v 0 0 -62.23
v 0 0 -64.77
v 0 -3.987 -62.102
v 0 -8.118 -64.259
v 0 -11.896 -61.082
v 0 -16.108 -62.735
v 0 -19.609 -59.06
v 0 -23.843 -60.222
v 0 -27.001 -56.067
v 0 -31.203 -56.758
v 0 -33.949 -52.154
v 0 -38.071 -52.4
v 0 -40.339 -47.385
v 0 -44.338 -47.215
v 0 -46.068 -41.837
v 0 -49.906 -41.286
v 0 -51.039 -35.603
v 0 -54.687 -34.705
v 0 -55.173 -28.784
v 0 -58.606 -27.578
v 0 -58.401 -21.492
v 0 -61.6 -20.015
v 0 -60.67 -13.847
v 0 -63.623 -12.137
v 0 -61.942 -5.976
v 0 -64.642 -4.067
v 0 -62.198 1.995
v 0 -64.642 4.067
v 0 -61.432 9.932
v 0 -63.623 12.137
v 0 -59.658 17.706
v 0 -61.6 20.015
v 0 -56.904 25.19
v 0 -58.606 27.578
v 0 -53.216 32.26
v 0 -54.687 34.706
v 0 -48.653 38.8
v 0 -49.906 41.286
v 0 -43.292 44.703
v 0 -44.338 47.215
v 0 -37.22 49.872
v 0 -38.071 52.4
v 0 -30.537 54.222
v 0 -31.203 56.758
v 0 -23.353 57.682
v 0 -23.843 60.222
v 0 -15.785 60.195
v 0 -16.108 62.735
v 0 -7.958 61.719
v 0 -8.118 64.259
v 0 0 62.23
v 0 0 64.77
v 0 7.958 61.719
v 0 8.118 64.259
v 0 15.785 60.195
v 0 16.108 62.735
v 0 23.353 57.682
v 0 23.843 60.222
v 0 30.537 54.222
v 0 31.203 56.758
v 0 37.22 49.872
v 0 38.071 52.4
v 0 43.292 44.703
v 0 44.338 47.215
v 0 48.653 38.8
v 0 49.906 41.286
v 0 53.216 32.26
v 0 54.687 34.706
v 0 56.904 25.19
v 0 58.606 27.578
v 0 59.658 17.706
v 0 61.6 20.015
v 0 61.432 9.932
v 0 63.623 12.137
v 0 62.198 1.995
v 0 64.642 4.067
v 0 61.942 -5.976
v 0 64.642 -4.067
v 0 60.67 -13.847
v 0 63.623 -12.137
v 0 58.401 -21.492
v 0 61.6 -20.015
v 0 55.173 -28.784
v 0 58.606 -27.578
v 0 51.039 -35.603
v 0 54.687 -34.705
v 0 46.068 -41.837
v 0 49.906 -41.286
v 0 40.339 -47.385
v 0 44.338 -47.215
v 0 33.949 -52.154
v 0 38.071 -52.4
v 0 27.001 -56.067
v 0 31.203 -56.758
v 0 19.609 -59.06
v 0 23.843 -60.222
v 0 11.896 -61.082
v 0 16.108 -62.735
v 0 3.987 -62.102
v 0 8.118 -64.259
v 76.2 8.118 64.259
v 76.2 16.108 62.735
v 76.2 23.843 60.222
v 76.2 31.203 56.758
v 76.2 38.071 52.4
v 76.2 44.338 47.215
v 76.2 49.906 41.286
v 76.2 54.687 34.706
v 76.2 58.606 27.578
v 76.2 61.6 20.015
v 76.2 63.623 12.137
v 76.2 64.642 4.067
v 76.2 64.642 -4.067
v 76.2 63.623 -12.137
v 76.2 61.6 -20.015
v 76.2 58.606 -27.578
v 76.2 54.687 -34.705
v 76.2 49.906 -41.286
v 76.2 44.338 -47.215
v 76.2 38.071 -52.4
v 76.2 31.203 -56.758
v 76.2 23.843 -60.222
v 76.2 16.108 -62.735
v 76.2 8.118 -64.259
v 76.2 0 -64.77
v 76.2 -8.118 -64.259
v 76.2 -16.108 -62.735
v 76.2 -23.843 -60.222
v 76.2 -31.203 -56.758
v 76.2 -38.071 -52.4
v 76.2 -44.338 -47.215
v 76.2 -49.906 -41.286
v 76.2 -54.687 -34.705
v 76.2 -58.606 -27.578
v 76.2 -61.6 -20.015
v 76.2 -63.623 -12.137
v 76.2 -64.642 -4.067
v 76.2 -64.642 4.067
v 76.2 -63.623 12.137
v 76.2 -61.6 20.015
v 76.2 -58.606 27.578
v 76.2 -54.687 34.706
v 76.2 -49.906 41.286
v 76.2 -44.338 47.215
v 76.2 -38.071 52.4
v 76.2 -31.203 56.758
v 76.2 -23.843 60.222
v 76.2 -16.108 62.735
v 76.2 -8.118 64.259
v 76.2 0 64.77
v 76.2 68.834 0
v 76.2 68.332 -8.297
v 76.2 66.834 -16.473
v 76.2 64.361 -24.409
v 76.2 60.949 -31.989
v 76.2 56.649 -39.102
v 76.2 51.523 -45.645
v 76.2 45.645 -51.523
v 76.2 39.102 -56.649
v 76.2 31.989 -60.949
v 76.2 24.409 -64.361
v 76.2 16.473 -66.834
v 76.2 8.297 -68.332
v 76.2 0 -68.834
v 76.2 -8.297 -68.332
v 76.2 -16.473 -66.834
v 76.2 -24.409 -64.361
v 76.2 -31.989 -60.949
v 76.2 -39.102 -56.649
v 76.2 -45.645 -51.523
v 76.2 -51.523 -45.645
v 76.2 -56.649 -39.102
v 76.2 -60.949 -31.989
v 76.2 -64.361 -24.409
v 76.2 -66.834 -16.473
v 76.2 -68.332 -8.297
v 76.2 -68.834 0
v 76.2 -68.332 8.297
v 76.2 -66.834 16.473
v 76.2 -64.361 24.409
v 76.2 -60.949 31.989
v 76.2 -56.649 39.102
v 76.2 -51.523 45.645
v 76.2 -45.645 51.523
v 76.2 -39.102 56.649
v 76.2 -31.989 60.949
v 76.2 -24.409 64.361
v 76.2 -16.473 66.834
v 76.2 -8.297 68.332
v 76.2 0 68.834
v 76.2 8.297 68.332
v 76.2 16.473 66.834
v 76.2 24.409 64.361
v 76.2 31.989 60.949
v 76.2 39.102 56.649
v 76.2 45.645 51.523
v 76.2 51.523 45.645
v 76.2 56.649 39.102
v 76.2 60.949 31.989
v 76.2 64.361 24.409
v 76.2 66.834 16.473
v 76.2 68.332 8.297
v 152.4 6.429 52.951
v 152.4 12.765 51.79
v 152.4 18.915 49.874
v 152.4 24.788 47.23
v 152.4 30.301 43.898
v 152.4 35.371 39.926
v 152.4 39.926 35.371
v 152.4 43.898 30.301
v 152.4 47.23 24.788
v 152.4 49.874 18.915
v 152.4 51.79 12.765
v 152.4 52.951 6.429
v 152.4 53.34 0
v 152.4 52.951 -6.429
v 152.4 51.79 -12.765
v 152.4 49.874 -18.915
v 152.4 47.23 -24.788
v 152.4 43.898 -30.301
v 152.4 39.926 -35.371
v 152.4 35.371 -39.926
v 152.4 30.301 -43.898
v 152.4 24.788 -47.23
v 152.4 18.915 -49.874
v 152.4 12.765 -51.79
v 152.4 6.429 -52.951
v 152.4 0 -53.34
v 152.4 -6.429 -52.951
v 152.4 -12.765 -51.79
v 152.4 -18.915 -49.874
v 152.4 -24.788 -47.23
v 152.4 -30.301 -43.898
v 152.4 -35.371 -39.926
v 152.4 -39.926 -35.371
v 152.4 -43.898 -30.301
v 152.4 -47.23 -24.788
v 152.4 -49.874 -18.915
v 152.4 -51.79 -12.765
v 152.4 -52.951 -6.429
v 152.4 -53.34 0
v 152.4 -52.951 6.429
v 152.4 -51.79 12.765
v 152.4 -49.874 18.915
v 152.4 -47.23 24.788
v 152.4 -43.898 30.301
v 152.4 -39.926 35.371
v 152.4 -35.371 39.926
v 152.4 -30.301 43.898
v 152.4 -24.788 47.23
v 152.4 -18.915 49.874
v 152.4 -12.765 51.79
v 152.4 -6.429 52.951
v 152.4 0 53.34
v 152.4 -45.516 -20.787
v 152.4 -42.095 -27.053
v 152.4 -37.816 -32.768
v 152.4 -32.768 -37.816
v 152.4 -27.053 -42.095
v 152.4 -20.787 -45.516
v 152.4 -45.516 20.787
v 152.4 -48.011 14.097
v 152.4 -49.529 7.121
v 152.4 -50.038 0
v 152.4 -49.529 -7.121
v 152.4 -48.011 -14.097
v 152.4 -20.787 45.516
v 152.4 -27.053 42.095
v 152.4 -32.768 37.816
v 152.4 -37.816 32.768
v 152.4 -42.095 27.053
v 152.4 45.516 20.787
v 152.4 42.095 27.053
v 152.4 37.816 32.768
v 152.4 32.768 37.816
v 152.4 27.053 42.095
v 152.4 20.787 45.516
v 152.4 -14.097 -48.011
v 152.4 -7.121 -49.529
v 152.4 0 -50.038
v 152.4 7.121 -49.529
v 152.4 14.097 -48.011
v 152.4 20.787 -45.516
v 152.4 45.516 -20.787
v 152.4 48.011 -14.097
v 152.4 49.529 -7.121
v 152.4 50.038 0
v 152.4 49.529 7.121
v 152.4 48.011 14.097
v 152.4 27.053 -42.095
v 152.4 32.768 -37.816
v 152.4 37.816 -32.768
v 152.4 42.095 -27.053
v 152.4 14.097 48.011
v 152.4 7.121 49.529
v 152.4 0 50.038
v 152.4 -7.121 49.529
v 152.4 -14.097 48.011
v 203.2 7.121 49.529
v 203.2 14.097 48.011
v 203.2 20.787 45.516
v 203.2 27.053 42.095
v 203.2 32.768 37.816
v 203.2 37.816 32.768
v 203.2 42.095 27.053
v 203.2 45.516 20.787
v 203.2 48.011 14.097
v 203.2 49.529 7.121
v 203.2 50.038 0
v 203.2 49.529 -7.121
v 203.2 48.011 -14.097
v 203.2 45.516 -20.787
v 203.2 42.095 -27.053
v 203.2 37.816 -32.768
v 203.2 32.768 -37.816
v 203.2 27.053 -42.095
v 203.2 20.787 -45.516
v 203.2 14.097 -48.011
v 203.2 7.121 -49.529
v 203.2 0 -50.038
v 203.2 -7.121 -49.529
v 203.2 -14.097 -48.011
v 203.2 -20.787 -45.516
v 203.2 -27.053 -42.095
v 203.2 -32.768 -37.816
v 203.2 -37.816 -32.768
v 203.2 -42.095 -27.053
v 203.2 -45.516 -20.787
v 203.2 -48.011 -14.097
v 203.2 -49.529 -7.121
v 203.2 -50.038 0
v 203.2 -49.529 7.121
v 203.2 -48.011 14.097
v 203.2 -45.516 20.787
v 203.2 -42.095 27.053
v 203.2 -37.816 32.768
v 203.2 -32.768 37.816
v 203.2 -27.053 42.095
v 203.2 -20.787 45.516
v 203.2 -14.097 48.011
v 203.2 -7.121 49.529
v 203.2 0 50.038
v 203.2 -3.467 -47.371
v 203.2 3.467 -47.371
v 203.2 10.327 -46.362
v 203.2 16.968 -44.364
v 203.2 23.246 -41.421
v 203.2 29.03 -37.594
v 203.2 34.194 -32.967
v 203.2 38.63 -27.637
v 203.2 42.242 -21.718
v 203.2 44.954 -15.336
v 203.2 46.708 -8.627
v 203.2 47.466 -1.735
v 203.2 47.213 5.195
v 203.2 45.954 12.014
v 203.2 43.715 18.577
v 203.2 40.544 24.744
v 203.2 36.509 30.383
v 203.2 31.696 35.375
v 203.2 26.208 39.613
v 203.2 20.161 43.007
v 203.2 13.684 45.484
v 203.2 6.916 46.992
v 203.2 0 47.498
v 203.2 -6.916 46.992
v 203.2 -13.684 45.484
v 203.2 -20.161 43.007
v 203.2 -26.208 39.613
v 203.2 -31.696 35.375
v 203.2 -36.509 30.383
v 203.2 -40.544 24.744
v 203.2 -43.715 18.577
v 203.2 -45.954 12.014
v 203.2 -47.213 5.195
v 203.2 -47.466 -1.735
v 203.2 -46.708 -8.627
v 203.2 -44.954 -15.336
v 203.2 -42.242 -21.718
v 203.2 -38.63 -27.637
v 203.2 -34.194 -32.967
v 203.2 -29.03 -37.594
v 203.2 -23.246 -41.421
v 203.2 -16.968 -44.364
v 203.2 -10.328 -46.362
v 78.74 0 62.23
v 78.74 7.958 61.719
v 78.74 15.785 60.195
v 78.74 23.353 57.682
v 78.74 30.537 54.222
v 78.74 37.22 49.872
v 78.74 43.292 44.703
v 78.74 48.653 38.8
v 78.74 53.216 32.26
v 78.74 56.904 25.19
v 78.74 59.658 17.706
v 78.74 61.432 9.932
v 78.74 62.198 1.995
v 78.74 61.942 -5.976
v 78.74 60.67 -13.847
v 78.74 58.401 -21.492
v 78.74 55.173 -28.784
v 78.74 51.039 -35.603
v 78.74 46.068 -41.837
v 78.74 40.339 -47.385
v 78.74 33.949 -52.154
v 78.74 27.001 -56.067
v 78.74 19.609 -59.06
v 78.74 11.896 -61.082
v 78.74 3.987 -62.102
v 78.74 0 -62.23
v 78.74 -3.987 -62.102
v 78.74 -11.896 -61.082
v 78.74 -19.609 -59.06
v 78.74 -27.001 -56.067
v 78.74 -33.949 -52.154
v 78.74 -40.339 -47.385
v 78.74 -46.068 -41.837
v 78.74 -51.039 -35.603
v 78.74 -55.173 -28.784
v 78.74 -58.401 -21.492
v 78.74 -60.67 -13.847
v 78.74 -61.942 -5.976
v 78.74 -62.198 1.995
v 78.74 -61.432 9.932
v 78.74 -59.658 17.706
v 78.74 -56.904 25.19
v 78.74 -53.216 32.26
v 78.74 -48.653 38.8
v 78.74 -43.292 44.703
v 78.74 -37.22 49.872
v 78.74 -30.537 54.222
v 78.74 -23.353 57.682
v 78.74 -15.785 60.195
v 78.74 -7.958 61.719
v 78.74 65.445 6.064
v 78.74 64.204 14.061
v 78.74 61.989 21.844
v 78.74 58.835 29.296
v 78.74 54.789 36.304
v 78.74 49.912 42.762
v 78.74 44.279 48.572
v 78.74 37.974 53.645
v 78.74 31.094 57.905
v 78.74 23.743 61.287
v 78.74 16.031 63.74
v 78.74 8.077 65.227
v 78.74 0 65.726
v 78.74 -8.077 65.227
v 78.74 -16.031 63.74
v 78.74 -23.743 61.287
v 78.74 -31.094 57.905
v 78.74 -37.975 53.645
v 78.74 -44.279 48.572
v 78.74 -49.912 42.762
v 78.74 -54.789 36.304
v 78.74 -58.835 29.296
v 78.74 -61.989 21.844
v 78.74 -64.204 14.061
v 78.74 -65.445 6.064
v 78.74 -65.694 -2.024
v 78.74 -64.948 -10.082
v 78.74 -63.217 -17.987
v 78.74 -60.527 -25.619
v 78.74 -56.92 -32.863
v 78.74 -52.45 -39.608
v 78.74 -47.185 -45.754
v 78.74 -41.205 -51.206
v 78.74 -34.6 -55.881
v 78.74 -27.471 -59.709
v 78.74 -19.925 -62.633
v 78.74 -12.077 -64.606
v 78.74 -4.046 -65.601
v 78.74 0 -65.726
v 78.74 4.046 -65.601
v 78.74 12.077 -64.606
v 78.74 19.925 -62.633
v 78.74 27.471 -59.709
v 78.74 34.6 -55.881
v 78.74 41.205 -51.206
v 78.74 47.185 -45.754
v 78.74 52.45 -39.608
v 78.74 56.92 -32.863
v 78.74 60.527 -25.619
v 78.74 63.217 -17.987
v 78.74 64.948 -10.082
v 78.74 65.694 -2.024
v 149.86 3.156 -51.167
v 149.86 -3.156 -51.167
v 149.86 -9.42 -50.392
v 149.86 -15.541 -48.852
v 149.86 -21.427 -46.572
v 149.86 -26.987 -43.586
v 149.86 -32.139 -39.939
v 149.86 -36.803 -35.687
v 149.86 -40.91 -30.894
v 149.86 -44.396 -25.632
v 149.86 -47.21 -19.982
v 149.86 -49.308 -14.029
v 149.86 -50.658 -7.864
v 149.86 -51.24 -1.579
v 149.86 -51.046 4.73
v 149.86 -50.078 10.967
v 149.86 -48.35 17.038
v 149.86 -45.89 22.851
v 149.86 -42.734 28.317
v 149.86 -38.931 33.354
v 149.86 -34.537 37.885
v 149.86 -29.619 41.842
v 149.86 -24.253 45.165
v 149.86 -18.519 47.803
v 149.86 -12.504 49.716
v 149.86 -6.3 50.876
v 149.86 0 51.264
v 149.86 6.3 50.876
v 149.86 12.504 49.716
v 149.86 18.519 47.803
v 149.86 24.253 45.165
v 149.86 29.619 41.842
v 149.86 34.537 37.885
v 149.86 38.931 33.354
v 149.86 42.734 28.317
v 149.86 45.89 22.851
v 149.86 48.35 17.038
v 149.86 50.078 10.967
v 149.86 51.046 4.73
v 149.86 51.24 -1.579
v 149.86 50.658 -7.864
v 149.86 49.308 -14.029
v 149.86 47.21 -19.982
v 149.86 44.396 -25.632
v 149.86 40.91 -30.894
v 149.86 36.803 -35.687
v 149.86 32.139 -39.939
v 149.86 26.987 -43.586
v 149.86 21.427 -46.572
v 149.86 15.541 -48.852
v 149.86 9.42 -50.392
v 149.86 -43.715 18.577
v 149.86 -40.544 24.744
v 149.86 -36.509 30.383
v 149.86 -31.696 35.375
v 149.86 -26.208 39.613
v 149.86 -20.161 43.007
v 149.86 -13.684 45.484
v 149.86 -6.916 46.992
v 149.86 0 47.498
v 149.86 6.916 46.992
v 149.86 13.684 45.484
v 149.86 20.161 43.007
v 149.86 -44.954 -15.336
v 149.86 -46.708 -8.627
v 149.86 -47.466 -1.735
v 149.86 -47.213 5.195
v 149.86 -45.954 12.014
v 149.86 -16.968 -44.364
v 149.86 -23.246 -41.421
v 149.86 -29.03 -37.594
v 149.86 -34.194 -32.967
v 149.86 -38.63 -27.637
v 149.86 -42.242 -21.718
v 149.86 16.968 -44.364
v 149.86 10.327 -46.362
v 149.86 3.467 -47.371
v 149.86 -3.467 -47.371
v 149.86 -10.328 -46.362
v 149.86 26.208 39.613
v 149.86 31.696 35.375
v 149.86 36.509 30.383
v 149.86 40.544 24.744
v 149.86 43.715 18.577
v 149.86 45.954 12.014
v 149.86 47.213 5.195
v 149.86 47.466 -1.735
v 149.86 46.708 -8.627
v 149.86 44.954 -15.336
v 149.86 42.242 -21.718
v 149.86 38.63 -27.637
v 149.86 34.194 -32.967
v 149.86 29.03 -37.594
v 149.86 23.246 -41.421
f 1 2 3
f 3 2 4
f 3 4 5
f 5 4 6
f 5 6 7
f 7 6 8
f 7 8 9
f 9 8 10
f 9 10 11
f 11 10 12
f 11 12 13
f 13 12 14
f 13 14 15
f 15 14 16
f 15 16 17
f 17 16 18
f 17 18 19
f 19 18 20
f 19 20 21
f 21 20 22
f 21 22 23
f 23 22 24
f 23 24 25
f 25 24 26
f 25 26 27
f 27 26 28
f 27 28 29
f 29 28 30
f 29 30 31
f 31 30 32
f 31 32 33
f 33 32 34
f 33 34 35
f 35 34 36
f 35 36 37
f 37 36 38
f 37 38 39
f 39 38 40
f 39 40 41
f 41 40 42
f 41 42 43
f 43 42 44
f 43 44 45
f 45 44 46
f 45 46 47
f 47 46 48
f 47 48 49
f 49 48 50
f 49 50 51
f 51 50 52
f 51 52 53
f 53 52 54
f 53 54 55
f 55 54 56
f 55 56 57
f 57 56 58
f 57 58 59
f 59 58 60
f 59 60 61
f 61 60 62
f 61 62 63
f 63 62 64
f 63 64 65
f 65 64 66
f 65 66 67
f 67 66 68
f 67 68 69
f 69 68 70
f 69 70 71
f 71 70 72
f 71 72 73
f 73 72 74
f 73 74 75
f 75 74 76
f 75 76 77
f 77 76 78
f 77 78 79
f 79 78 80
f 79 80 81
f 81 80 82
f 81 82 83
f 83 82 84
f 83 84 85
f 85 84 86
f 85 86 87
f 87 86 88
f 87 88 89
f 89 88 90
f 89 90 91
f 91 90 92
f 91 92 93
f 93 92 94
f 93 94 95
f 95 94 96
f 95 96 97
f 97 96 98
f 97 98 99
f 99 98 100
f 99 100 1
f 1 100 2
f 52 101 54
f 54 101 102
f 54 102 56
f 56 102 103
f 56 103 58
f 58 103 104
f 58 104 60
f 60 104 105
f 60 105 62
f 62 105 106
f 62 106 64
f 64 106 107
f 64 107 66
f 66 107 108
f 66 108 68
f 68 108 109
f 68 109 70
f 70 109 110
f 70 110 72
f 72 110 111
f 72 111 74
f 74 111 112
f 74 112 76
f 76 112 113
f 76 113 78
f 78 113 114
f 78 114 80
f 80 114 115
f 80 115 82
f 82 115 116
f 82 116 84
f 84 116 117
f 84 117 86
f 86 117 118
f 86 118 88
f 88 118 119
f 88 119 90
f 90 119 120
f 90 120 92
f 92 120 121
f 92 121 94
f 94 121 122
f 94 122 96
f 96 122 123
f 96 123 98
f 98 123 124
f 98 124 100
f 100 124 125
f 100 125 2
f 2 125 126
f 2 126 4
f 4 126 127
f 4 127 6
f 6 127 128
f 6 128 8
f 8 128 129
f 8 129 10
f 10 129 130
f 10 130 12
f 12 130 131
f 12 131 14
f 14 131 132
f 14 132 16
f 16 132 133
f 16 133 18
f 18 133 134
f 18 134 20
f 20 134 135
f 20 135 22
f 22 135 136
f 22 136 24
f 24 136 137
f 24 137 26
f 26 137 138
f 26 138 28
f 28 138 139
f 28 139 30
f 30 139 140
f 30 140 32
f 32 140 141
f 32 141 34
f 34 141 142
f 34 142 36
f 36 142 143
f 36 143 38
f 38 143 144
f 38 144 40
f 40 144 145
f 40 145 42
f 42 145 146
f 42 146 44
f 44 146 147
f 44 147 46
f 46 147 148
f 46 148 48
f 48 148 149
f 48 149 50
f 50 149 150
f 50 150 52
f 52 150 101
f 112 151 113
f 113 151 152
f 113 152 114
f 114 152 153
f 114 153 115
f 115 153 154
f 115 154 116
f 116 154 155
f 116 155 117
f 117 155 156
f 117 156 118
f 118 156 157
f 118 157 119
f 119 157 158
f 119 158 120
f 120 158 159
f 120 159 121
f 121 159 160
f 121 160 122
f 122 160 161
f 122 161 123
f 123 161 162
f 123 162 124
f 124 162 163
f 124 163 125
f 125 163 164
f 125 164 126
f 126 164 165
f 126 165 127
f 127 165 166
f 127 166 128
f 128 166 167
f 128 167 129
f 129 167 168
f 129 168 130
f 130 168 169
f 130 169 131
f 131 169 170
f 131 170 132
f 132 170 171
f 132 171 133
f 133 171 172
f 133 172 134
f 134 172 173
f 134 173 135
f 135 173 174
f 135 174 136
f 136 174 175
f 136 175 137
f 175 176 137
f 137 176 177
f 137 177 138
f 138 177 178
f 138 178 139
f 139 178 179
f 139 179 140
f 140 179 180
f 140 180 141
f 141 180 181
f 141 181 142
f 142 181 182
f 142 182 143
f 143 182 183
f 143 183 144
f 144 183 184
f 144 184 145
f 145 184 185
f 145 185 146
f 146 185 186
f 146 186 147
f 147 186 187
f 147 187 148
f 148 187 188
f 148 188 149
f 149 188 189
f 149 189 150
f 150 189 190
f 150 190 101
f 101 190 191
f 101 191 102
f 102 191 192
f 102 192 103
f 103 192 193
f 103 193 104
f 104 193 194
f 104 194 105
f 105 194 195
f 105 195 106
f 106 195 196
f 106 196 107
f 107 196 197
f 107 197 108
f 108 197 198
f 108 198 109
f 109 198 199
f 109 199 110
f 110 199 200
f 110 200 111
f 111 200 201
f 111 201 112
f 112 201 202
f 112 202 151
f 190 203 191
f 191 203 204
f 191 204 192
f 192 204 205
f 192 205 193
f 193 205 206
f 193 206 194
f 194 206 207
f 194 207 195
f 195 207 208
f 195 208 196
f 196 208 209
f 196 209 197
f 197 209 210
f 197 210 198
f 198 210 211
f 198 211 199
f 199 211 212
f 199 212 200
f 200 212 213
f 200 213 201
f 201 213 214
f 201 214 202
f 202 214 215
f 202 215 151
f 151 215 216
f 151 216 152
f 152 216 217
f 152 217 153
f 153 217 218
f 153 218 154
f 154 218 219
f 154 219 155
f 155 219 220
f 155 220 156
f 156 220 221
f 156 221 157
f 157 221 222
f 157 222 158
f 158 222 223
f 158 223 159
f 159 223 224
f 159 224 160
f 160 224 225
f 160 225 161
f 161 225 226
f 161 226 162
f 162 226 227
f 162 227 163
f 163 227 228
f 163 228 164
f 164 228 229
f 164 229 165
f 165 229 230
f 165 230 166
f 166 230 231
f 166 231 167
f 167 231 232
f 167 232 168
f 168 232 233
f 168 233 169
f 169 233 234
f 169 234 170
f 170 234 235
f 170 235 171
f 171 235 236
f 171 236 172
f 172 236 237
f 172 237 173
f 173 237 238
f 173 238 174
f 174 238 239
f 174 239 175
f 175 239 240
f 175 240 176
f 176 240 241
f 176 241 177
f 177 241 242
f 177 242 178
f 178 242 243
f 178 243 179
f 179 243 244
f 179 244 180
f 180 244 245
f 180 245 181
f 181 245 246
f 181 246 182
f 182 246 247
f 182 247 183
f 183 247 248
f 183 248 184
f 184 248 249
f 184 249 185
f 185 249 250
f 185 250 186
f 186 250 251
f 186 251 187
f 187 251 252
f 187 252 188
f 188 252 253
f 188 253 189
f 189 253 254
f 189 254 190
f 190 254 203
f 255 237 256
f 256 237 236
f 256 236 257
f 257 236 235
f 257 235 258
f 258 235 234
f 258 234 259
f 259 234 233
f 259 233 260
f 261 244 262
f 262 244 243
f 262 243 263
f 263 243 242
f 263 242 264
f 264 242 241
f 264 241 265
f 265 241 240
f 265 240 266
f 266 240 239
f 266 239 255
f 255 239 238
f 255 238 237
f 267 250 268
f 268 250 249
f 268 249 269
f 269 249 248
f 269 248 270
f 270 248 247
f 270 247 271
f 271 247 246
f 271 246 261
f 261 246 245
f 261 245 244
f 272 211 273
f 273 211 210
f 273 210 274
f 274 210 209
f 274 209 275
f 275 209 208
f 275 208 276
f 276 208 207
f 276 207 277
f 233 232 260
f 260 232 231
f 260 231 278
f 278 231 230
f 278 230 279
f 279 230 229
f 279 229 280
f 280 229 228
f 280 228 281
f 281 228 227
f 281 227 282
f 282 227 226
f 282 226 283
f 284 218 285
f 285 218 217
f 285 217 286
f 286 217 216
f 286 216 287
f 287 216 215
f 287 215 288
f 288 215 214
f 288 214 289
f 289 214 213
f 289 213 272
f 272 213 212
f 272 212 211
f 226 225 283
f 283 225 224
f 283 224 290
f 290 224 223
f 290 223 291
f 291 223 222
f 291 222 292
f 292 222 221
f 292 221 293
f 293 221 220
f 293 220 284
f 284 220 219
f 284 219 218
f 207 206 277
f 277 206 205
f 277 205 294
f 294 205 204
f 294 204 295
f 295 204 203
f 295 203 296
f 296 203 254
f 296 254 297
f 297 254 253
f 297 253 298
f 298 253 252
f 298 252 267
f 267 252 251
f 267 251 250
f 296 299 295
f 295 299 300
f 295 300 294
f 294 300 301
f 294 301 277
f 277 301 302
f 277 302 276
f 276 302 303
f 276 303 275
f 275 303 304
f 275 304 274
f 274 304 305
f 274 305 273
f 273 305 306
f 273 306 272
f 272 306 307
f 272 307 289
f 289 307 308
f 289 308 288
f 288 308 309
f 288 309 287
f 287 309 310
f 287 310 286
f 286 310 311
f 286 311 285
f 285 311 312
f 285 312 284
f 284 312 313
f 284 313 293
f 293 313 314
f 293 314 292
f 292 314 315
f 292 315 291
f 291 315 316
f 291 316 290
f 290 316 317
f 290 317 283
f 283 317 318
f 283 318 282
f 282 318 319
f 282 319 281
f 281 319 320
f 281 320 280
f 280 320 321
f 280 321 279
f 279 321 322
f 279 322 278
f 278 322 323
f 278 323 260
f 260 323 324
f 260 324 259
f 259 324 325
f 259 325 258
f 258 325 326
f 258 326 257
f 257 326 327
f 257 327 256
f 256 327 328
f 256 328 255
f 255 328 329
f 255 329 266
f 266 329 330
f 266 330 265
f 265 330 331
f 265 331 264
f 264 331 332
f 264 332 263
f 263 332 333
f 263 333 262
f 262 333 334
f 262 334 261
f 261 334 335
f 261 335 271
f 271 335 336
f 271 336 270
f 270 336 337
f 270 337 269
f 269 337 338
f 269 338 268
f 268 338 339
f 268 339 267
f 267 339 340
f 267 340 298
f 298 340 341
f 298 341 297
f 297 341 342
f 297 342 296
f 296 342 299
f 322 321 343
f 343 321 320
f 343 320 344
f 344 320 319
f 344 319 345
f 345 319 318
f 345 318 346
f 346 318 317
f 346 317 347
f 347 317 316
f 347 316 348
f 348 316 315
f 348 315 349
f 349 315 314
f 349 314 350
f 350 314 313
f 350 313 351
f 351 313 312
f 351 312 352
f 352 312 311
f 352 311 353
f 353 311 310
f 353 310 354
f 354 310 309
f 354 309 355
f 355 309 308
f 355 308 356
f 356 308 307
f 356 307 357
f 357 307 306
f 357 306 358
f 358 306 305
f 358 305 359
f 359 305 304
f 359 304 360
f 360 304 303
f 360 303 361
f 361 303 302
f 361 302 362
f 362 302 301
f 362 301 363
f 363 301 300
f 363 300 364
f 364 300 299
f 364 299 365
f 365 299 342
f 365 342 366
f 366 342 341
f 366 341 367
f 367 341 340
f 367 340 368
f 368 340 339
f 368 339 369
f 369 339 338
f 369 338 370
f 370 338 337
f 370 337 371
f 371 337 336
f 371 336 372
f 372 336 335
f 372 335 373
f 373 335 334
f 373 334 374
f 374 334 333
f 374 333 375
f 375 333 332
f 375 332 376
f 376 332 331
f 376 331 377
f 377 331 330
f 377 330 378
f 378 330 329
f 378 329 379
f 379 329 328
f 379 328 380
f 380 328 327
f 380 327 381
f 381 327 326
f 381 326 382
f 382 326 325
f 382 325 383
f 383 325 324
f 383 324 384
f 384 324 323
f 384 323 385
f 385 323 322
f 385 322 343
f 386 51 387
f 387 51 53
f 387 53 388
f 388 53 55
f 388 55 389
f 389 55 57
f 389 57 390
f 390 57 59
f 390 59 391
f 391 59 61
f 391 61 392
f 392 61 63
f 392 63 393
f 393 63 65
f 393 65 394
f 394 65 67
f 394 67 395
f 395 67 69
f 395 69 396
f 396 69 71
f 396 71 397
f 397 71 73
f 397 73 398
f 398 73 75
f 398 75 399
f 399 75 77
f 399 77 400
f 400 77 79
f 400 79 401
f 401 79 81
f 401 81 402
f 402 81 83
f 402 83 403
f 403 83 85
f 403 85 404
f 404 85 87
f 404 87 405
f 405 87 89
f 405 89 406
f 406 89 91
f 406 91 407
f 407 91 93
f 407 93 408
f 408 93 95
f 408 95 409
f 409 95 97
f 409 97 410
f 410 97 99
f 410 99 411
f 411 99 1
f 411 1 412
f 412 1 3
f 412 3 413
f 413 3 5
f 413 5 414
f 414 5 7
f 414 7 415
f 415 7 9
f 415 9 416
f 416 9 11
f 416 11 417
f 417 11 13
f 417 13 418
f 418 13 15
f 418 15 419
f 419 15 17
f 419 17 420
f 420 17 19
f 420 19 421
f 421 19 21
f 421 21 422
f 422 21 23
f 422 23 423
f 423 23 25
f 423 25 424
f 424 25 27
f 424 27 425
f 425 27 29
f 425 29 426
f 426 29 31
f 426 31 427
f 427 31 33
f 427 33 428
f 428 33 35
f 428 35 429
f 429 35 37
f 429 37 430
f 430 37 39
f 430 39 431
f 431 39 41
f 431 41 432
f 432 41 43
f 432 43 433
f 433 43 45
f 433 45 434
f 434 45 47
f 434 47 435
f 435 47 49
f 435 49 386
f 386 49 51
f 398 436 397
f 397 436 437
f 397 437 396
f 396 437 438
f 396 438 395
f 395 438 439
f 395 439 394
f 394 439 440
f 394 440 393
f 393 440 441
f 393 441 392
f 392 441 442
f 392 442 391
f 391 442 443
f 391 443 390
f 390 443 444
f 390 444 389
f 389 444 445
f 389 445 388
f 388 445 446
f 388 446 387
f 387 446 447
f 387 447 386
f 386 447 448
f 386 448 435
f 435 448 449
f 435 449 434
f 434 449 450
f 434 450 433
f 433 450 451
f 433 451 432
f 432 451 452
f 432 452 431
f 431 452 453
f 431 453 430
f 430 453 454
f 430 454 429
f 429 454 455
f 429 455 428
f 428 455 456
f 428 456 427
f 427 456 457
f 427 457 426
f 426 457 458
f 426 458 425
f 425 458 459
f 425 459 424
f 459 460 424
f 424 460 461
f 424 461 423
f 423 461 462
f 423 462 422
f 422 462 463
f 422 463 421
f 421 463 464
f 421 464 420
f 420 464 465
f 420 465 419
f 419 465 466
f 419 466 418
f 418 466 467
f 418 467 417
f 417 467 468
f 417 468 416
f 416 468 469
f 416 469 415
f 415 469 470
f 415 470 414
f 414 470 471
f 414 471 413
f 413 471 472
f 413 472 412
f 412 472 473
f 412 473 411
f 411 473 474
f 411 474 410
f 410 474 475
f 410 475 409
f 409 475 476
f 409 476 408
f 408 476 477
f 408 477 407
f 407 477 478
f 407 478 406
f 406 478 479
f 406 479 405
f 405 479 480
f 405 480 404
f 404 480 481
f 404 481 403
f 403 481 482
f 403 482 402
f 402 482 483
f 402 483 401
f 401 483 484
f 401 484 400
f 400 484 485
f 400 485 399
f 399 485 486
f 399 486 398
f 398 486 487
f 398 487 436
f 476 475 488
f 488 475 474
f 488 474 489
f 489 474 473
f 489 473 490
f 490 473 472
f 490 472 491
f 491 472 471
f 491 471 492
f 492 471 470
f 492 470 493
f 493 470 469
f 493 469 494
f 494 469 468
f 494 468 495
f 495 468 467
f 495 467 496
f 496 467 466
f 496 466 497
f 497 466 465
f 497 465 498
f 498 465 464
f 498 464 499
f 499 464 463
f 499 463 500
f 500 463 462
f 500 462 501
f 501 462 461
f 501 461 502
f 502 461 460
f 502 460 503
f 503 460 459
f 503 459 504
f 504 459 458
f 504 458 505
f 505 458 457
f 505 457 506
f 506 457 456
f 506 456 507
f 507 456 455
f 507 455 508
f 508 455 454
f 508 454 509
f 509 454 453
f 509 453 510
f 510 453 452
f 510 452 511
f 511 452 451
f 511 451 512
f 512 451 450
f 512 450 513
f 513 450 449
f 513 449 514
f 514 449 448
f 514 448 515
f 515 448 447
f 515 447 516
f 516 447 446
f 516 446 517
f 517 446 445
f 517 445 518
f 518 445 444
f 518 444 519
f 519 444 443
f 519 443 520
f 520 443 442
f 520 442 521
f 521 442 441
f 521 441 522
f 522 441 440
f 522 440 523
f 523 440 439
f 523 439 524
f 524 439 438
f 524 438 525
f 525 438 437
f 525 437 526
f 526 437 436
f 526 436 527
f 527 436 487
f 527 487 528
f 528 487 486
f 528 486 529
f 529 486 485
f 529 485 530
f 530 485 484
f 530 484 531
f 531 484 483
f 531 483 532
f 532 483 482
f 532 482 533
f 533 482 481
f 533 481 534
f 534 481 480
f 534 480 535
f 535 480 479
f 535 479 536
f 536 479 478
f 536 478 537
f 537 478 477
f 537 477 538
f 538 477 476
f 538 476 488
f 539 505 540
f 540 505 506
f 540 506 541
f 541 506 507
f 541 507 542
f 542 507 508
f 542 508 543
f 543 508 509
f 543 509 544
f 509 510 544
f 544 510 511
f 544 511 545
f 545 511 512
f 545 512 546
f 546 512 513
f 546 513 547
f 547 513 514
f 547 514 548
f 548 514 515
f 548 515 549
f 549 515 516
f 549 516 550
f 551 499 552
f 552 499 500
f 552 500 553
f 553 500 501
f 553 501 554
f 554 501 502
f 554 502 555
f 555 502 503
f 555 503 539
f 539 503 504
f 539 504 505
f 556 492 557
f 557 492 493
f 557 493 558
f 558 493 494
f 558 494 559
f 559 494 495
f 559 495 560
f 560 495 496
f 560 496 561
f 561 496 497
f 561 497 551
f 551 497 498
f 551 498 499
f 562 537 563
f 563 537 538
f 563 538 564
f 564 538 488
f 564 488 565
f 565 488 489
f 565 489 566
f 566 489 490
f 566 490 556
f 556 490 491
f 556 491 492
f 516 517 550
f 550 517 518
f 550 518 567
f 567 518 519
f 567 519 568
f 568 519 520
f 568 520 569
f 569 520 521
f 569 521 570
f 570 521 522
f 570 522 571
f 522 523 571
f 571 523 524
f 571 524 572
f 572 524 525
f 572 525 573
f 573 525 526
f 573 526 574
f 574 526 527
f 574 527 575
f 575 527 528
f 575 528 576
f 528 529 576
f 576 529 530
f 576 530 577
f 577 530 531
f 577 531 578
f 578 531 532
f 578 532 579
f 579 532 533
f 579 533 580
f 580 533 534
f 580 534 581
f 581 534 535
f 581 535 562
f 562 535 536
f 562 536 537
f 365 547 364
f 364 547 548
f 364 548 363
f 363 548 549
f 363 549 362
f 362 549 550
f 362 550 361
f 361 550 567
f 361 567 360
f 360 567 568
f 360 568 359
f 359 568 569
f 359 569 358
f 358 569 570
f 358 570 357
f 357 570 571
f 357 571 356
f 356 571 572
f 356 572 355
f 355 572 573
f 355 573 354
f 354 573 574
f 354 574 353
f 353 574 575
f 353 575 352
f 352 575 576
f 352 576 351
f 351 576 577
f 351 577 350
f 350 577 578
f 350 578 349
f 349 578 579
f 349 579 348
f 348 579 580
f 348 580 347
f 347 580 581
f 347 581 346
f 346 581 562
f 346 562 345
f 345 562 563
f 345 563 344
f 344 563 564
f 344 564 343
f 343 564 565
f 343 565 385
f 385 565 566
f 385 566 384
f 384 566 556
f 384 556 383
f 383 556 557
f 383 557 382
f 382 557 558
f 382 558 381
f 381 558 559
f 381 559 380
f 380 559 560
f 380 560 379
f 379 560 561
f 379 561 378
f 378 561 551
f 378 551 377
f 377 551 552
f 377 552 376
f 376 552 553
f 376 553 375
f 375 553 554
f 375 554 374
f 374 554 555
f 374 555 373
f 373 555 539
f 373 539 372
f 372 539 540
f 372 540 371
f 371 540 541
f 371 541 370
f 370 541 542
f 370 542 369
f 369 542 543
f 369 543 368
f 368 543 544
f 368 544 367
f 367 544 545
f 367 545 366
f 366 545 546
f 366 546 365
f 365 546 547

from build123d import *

# Parameters (mm, degrees)
SHELL1_T = -2.54


with BuildPart() as part:
    # Sketch1 → Revolve1 (revolve)
    with BuildSketch(Plane(origin=(0, 0, 0), x_dir=(1, 0, 0), z_dir=(0, 1, 0)), mode=Mode.PRIVATE) as revolve1_sk:
        Polygon((76.2, 68.834), (152.4, 53.34), (152.4, 50.038), (203.2, 50.038), (203.2, 0), (0, 0), (0, 64.77), (76.2, 64.77), align=None)
    revolve(revolve1_sk.sketch.rotate(Axis((0, 0, 0), (1, 0, 0)), 180), axis=Axis((0, 0, 0), (1, 0, 0)))

    # Shell1
    shell1_openings = [part.faces().sort_by_distance(p)[0] for p in [
        (0, 0, 0),
        (203.2, 0, 0),
    ]]
    offset(amount=SHELL1_T, openings=shell1_openings, kind=Kind.INTERSECTION)


solid = part.part
